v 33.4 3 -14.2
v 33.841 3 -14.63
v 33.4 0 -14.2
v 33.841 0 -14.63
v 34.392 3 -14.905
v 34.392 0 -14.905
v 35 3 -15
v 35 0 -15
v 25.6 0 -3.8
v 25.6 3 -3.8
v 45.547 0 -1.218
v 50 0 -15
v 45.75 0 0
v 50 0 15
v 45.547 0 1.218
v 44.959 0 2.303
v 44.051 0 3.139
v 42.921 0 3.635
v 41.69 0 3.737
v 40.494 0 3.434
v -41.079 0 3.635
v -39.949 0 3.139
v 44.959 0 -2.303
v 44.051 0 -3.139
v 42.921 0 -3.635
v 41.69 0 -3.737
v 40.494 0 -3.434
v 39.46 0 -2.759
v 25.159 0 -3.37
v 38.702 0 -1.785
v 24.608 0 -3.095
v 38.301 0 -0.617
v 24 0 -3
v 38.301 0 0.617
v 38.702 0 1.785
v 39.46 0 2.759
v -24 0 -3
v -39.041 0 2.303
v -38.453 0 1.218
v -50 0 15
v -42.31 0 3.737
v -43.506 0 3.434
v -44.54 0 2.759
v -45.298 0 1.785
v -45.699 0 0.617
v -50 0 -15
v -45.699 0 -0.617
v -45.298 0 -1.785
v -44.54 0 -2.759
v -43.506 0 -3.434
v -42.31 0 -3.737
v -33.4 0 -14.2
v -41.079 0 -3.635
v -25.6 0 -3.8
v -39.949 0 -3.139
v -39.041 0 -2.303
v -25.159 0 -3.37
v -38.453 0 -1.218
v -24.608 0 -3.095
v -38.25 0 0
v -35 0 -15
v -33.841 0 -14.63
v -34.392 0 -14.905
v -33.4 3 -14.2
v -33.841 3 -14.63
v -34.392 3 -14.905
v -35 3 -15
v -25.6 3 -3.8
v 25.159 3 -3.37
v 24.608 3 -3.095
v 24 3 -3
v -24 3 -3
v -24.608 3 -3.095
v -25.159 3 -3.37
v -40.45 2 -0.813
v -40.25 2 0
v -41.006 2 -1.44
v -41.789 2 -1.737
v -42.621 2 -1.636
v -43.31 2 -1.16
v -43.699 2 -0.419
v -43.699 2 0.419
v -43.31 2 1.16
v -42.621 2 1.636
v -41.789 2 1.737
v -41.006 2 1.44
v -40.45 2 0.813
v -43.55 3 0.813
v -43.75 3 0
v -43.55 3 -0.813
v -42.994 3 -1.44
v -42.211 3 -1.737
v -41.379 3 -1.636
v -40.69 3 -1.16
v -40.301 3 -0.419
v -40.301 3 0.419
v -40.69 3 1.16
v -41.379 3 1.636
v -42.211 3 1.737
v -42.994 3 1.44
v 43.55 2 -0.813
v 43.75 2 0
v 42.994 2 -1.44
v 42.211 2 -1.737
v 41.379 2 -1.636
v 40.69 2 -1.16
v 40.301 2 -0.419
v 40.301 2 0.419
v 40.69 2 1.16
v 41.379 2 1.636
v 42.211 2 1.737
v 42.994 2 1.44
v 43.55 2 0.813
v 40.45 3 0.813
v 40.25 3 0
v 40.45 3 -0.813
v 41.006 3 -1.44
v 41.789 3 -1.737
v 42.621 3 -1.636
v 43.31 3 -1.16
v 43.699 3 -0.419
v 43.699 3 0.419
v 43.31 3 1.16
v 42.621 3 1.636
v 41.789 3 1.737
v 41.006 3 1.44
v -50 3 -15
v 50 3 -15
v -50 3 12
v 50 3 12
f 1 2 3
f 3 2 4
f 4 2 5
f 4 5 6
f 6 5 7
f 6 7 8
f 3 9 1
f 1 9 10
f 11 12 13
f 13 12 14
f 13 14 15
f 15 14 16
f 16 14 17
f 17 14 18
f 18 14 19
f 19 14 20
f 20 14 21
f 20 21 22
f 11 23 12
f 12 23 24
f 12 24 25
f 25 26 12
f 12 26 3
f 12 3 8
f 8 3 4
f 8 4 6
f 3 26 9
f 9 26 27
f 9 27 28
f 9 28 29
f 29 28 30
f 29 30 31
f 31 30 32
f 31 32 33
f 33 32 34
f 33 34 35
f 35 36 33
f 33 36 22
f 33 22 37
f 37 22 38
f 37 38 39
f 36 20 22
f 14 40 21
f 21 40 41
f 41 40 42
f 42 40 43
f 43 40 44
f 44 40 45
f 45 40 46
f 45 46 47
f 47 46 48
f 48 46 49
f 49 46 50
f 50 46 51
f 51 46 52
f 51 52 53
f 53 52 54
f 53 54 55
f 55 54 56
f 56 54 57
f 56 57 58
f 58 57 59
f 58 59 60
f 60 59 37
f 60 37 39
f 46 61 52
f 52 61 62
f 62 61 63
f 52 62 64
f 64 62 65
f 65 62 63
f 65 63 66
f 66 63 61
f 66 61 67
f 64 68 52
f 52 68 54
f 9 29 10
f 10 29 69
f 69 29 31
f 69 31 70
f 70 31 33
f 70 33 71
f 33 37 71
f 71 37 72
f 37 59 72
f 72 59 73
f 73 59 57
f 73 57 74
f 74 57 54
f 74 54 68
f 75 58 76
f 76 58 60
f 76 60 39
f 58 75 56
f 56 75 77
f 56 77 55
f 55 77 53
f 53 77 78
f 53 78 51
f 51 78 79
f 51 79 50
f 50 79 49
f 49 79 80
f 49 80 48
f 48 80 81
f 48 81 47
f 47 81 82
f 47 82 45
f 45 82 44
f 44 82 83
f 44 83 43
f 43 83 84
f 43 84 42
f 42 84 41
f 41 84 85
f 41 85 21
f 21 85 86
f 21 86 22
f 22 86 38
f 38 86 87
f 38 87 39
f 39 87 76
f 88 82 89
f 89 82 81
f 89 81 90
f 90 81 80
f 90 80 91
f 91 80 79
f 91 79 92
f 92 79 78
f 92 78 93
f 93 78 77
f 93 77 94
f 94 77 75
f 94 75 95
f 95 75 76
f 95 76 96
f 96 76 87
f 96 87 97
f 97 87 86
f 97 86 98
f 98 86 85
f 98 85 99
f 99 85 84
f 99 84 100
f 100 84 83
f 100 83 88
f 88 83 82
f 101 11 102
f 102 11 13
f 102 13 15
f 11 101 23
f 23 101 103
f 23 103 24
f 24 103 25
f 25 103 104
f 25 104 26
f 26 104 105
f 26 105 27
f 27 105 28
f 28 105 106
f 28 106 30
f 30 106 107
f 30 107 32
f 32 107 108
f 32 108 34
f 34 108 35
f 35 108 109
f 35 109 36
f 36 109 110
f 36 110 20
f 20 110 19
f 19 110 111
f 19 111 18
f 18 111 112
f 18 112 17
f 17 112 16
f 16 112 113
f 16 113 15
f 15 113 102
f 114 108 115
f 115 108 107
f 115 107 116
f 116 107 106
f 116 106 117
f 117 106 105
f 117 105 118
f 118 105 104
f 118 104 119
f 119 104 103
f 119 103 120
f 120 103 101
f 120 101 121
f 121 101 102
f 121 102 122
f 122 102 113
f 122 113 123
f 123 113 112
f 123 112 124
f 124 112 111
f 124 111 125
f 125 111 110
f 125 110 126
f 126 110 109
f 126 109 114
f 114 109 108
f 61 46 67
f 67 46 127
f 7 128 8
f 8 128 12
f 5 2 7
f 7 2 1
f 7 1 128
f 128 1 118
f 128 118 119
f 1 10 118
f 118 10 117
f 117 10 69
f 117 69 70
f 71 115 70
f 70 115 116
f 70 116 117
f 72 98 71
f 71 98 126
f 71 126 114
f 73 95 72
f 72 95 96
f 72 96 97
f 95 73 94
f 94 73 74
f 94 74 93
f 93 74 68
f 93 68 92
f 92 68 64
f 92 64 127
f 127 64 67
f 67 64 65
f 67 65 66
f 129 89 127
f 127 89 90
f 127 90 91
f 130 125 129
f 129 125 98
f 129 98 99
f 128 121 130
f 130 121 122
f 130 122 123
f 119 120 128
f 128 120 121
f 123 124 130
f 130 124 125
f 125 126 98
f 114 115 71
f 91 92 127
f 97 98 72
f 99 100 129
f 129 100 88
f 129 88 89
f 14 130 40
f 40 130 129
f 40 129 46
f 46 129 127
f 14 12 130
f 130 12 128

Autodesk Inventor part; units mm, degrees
ref_plane "YZ Plane" through (0, 0, 0) normal (1, 0, 0) x (0, 1, 0)
ref_plane "XZ Plane" through (0, 0, 0) normal (0, 1, 0) x (-1, 0, 0)
ref_plane "XY Plane" through (0, 0, 0) normal (0, 0, 1) x (1, 0, 0)
sketch "Sketch1" plane through (0, 0, 0) normal (0, 1, 0) x (-1, 0, 0)
  line L0 (50, 15) -> (-50, 15)
  line L1 (-50, 15) -> (-50, -15)
  line L2 (-50, -15) -> (50, -15)
  line L3 (50, -15) -> (50, 15)
  line L4 (50, 15) -> (-50, -15) construction
  line L5 (-50, 15) -> (50, -15) construction
  point P0 (0, 0)
  dimension "d0" = 100
  dimension "d1" = 30
extrude "Extrusion1" add sketch "Sketch1" along normal blind 3
sketch "Sketch2" plane through (50, 0, 15) normal (1, 0, 0) x (0, 0, -1)
  line L0 (0, 0) -> (3, 3)
  line L1 (0, 0) -> (4.2426, 0) construction
  line L2 (3, 3) -> (0, 3)
  line L3 (0, 0) -> (0, 3) projected
  line L4 (0, 3) -> (0, 0)
  dimension "d4" = 45
extrude "Extrusion2" cut sketch "Sketch2" against normal blind 100
sketch "Sketch3" plane through (0, 0, 0) normal (0, -1, 0) x (1, 0, 0)
  line L0 (25, -15) -> (-25, -15)
  line L1 (-25, -15) -> (-25, -3)
  line L2 (-25, -3) -> (25, -3)
  line L3 (25, -3) -> (25, -15)
  line L4 (0, 0) -> (0, -9.0285)
  line L5 (50, -15) -> (-50, -15) projected
  circle A0 centre (42, 0) radius 1.75
  circle A1 centre (-42, 0) radius 1.75
  line L6 (25, -3) -> (34, -15)
  line L7 (34, -15) -> (25, -15)
  line L8 (-25, -3) -> (-34, -15)
  line L9 (-25, -15) -> (-34, -15)
  line L10 (50, 15) -> (50, -15) projected
  dimension "d7" = 50
  dimension "d8" = 12
  dimension "d9" = 0
  dimension "d10" = 3.5
  dimension "d12" = 15
  dimension "d19" = 9
  dimension "d20" = 9
  dimension "d21" = 8
extrude "Extrusion3" cut sketch "Sketch3" against normal through all
chamfer "Chamfer1" distance 2 angle 45 2 edges at (40.25, 0, 0) (-43.75, 0, 0)
fillet "Fillet1" radius 2 4 edges at (-25, 1.5, -3) (25, 1.5, -3) (-34, 1.5, -15) (34, 1.5, -15)
properties part number "HM_Knife_cut" material "Steel, Alloy"
